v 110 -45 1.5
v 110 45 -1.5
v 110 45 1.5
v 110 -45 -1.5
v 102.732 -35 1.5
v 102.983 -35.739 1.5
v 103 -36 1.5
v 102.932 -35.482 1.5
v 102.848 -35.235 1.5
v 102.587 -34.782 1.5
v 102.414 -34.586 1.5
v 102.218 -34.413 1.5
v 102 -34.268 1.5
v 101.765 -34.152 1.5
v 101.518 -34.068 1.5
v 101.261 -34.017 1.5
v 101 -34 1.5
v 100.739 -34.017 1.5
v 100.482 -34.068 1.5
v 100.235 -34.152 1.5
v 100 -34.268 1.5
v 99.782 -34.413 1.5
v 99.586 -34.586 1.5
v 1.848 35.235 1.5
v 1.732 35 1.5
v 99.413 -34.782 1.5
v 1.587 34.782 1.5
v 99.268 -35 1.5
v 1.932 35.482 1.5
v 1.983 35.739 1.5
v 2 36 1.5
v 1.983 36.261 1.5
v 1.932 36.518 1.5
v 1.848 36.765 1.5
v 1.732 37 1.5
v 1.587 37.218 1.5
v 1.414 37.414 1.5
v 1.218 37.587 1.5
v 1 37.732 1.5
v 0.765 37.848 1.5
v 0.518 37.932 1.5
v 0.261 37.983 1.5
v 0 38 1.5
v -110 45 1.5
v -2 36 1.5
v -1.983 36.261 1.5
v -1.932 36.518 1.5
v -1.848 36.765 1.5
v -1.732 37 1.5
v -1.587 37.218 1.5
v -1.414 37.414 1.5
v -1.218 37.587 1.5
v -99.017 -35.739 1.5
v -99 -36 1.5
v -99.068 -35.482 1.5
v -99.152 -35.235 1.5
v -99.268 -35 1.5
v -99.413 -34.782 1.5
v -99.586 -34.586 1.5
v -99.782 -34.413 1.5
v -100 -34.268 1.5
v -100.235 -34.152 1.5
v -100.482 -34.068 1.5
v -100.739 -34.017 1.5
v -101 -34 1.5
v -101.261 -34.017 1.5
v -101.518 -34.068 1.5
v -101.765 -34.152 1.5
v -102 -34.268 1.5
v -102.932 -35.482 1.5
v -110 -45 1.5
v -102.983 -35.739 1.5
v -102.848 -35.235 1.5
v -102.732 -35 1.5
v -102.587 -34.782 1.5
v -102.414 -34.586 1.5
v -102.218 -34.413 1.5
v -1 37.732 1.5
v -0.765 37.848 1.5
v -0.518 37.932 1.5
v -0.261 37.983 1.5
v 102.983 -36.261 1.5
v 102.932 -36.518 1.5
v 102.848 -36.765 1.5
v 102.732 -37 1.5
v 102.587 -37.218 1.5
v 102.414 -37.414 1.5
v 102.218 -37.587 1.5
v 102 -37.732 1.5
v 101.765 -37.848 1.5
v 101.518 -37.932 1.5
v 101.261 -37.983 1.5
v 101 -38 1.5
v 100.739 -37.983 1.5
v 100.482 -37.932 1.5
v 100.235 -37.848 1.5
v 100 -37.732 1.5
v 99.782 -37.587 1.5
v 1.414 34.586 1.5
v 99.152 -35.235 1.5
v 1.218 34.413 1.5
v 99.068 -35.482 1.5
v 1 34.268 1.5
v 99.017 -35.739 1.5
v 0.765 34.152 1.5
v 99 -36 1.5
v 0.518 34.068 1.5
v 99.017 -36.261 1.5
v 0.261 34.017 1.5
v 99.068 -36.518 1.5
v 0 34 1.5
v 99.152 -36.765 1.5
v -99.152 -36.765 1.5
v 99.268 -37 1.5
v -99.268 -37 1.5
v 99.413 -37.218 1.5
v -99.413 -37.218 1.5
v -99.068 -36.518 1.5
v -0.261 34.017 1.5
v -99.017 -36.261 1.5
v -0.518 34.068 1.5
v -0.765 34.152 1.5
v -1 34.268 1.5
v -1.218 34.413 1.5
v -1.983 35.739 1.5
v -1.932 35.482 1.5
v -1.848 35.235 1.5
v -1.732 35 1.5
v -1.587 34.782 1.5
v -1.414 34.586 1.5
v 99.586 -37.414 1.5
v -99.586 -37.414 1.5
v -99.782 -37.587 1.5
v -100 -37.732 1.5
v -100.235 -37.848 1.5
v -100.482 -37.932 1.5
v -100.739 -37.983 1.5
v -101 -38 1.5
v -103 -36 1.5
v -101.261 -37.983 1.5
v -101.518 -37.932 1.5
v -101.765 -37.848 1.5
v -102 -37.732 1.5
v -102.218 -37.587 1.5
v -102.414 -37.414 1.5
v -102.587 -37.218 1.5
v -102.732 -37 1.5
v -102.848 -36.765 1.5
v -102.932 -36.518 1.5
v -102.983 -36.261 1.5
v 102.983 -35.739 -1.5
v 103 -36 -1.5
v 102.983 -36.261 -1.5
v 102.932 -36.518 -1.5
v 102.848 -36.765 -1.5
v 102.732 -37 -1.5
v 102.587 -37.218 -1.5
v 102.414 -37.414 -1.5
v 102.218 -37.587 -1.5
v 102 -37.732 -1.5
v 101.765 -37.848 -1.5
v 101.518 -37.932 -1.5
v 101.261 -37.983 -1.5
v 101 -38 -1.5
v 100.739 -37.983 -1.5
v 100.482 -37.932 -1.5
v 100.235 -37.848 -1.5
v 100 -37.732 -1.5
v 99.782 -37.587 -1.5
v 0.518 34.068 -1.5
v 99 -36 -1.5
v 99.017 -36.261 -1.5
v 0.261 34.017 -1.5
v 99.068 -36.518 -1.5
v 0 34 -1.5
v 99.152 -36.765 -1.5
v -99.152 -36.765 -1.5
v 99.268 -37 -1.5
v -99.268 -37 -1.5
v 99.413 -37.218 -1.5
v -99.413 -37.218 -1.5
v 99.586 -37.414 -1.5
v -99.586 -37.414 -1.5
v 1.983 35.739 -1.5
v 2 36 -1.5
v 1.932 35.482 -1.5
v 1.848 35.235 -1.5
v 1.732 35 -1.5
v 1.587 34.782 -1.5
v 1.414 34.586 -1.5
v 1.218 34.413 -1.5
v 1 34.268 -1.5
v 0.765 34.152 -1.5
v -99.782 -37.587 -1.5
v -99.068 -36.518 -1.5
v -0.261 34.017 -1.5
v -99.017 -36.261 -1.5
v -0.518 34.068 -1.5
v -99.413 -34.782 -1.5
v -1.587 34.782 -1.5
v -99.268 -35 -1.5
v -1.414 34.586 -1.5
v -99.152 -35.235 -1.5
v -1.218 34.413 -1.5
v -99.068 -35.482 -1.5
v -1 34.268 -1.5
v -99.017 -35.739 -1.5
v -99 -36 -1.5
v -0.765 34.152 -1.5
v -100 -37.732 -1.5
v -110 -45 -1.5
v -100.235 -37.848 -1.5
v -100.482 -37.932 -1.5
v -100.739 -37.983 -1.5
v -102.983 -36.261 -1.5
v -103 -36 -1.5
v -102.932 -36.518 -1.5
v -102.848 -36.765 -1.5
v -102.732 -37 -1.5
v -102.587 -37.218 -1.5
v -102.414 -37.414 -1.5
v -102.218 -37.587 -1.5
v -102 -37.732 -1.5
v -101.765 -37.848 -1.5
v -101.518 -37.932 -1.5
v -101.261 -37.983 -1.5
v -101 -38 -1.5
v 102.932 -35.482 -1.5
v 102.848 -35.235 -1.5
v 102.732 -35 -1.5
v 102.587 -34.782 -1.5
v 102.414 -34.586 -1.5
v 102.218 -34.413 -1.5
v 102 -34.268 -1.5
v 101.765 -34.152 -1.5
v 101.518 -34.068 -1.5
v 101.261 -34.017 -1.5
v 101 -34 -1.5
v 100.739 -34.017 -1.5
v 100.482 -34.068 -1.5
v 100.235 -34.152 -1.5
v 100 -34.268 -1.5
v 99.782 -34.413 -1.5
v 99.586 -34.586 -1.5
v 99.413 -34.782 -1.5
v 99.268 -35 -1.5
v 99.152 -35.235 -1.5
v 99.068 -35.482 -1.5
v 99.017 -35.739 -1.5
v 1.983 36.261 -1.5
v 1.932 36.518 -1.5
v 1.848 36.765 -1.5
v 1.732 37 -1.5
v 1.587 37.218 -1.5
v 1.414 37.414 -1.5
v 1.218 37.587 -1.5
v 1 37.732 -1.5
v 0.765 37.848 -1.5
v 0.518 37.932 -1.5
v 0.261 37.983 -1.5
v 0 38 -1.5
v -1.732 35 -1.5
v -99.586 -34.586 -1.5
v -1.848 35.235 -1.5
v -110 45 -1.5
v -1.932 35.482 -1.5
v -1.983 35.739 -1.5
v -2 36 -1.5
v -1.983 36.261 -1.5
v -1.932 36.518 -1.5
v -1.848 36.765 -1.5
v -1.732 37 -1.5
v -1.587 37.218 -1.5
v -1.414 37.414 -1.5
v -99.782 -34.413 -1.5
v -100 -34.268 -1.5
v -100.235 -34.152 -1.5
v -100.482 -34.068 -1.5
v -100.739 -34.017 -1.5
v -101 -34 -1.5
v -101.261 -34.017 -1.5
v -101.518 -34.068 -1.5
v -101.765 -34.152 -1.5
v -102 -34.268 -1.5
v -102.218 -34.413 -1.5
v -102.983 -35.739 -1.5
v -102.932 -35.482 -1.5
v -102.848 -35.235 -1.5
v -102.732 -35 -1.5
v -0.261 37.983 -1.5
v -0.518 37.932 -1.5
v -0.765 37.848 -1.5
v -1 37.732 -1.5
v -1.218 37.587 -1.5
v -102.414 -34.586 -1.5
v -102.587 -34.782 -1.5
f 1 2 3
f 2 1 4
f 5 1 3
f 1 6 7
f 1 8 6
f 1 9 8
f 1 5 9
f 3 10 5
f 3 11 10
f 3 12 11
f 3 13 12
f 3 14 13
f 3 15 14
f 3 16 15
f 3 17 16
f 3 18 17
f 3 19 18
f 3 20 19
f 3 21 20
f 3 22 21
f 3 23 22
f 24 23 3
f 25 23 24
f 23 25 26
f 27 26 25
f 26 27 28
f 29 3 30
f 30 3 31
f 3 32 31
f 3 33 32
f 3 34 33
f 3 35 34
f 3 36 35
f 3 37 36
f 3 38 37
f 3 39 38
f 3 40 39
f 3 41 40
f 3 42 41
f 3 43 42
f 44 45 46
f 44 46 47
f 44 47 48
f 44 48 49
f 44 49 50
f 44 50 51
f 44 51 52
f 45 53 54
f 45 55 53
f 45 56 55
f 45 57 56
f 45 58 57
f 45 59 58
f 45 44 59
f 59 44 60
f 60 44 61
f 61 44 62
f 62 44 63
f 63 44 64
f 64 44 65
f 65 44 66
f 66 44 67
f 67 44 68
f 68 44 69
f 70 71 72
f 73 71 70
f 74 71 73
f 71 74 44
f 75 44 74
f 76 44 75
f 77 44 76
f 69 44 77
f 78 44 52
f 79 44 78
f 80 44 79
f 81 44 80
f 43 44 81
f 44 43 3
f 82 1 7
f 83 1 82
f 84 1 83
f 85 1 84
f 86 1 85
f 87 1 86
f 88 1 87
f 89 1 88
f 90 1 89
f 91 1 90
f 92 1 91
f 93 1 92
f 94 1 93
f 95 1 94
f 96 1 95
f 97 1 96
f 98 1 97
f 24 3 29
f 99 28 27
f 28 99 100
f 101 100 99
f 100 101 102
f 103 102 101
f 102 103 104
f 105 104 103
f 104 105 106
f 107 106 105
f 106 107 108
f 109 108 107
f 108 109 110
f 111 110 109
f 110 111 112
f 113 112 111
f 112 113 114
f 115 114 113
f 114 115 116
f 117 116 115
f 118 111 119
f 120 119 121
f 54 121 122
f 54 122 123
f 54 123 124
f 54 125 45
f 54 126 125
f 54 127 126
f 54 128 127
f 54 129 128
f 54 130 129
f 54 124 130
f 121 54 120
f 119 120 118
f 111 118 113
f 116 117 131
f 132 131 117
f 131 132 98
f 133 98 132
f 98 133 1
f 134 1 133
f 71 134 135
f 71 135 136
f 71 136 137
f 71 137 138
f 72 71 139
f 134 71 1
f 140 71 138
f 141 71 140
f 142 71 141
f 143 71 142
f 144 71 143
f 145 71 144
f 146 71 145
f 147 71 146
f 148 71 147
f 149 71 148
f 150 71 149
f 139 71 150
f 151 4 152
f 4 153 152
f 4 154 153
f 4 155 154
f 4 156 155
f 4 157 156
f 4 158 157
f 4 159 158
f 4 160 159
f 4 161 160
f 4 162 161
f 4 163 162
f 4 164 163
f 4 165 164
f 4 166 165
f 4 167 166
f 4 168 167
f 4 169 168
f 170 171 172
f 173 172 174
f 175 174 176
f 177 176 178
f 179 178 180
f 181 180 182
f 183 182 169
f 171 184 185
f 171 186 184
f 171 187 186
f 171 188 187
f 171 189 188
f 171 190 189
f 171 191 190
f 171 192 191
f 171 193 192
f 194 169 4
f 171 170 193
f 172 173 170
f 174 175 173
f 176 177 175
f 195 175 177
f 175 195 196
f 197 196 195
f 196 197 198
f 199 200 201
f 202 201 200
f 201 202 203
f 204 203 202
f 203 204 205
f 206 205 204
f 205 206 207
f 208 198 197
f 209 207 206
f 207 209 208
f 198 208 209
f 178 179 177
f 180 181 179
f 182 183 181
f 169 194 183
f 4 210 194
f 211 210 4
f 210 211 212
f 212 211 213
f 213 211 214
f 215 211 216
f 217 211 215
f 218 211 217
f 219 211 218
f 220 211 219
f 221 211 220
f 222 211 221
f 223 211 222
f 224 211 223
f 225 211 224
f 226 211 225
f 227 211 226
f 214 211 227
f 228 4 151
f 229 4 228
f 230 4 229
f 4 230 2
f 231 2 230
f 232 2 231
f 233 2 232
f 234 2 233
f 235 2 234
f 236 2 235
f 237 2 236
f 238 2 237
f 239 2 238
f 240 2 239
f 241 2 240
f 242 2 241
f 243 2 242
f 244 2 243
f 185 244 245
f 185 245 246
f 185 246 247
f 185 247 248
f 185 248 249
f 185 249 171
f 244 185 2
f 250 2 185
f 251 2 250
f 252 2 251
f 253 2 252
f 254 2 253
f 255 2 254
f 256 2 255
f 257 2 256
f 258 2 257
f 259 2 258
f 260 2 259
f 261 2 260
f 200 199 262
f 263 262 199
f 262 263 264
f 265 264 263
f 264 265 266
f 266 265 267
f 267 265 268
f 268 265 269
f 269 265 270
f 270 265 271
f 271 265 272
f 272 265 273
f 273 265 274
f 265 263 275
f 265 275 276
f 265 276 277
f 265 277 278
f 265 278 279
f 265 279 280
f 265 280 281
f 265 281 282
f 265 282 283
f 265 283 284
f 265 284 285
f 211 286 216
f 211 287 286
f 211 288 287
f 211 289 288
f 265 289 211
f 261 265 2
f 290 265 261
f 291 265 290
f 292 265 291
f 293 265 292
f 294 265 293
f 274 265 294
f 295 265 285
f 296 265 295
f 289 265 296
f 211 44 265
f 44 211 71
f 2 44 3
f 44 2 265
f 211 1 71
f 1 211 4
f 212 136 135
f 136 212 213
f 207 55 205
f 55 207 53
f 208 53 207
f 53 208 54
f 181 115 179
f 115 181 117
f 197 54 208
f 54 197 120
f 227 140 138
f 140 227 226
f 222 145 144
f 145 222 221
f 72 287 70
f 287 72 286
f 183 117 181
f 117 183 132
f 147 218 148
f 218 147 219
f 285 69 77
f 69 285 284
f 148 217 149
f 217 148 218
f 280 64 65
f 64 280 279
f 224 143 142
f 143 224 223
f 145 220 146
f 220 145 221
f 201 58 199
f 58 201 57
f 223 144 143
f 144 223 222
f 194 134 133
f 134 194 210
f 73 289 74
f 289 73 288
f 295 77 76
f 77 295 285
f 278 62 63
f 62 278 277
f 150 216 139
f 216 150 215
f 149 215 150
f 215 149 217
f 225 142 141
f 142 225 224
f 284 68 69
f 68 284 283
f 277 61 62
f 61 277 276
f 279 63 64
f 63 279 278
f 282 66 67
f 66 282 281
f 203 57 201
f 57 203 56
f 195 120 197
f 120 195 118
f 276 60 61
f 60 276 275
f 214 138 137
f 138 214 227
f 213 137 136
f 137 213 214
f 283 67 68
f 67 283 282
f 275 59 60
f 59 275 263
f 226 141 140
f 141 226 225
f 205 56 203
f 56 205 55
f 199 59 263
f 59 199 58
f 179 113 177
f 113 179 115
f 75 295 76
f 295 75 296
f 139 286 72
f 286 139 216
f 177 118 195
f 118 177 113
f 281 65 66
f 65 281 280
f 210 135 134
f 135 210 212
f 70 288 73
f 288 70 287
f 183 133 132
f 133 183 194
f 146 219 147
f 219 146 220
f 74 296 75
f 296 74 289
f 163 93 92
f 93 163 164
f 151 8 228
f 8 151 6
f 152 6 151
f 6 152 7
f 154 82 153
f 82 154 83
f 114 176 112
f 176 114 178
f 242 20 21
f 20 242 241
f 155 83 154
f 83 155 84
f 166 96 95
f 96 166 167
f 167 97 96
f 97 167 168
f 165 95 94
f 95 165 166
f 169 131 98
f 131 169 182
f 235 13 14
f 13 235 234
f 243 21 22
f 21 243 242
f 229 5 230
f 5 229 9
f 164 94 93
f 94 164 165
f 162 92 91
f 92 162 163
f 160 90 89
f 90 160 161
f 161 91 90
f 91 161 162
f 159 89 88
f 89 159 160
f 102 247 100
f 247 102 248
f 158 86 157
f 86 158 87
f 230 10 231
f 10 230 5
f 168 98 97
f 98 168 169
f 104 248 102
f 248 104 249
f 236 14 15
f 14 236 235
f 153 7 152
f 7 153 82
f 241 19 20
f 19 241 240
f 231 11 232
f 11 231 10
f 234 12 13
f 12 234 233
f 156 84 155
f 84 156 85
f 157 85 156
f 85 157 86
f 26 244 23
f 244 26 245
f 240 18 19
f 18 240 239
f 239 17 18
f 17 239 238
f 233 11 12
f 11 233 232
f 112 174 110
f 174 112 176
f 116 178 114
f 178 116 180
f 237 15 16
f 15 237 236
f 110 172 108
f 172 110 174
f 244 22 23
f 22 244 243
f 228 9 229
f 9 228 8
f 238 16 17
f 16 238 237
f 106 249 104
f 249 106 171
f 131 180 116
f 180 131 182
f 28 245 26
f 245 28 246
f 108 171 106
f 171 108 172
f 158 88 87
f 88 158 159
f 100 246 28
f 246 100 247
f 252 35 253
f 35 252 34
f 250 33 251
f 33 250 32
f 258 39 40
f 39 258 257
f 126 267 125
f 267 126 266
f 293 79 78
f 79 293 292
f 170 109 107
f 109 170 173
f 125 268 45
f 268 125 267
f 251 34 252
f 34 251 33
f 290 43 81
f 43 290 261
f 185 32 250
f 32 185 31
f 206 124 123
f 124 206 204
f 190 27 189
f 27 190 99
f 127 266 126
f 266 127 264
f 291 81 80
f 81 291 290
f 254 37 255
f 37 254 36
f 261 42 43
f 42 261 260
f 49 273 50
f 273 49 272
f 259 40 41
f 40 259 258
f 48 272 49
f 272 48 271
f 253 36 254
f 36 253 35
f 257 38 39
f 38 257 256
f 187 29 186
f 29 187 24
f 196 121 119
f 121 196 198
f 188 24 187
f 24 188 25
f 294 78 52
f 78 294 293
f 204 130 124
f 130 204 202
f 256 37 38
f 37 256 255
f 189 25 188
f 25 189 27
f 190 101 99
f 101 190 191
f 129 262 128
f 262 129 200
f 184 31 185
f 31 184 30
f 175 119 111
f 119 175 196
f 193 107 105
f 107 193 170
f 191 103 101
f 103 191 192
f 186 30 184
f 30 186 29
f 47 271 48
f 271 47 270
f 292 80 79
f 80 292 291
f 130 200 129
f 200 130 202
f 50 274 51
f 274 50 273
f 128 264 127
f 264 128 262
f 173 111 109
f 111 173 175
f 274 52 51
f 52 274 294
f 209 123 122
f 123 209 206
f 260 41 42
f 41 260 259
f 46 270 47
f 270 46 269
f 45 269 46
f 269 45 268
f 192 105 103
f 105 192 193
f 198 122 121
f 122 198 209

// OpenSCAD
// ========================================
// a 220 x 90 x 3 mm plate with three 4 mm holes
// NeuroCAD canonical IR; dimensions are millimetres
// ========================================
$fn = 48;

difference() {
  cube(size=[220, 90, 3], center=true);
  translate([-101, -36, 0]) {
    cylinder(r=2, h=5, center=true);
  }
  translate([101, -36, 0]) {
    cylinder(r=2, h=5, center=true);
  }
  translate([0, 36, 0]) {
    cylinder(r=2, h=5, center=true);
  }
}
